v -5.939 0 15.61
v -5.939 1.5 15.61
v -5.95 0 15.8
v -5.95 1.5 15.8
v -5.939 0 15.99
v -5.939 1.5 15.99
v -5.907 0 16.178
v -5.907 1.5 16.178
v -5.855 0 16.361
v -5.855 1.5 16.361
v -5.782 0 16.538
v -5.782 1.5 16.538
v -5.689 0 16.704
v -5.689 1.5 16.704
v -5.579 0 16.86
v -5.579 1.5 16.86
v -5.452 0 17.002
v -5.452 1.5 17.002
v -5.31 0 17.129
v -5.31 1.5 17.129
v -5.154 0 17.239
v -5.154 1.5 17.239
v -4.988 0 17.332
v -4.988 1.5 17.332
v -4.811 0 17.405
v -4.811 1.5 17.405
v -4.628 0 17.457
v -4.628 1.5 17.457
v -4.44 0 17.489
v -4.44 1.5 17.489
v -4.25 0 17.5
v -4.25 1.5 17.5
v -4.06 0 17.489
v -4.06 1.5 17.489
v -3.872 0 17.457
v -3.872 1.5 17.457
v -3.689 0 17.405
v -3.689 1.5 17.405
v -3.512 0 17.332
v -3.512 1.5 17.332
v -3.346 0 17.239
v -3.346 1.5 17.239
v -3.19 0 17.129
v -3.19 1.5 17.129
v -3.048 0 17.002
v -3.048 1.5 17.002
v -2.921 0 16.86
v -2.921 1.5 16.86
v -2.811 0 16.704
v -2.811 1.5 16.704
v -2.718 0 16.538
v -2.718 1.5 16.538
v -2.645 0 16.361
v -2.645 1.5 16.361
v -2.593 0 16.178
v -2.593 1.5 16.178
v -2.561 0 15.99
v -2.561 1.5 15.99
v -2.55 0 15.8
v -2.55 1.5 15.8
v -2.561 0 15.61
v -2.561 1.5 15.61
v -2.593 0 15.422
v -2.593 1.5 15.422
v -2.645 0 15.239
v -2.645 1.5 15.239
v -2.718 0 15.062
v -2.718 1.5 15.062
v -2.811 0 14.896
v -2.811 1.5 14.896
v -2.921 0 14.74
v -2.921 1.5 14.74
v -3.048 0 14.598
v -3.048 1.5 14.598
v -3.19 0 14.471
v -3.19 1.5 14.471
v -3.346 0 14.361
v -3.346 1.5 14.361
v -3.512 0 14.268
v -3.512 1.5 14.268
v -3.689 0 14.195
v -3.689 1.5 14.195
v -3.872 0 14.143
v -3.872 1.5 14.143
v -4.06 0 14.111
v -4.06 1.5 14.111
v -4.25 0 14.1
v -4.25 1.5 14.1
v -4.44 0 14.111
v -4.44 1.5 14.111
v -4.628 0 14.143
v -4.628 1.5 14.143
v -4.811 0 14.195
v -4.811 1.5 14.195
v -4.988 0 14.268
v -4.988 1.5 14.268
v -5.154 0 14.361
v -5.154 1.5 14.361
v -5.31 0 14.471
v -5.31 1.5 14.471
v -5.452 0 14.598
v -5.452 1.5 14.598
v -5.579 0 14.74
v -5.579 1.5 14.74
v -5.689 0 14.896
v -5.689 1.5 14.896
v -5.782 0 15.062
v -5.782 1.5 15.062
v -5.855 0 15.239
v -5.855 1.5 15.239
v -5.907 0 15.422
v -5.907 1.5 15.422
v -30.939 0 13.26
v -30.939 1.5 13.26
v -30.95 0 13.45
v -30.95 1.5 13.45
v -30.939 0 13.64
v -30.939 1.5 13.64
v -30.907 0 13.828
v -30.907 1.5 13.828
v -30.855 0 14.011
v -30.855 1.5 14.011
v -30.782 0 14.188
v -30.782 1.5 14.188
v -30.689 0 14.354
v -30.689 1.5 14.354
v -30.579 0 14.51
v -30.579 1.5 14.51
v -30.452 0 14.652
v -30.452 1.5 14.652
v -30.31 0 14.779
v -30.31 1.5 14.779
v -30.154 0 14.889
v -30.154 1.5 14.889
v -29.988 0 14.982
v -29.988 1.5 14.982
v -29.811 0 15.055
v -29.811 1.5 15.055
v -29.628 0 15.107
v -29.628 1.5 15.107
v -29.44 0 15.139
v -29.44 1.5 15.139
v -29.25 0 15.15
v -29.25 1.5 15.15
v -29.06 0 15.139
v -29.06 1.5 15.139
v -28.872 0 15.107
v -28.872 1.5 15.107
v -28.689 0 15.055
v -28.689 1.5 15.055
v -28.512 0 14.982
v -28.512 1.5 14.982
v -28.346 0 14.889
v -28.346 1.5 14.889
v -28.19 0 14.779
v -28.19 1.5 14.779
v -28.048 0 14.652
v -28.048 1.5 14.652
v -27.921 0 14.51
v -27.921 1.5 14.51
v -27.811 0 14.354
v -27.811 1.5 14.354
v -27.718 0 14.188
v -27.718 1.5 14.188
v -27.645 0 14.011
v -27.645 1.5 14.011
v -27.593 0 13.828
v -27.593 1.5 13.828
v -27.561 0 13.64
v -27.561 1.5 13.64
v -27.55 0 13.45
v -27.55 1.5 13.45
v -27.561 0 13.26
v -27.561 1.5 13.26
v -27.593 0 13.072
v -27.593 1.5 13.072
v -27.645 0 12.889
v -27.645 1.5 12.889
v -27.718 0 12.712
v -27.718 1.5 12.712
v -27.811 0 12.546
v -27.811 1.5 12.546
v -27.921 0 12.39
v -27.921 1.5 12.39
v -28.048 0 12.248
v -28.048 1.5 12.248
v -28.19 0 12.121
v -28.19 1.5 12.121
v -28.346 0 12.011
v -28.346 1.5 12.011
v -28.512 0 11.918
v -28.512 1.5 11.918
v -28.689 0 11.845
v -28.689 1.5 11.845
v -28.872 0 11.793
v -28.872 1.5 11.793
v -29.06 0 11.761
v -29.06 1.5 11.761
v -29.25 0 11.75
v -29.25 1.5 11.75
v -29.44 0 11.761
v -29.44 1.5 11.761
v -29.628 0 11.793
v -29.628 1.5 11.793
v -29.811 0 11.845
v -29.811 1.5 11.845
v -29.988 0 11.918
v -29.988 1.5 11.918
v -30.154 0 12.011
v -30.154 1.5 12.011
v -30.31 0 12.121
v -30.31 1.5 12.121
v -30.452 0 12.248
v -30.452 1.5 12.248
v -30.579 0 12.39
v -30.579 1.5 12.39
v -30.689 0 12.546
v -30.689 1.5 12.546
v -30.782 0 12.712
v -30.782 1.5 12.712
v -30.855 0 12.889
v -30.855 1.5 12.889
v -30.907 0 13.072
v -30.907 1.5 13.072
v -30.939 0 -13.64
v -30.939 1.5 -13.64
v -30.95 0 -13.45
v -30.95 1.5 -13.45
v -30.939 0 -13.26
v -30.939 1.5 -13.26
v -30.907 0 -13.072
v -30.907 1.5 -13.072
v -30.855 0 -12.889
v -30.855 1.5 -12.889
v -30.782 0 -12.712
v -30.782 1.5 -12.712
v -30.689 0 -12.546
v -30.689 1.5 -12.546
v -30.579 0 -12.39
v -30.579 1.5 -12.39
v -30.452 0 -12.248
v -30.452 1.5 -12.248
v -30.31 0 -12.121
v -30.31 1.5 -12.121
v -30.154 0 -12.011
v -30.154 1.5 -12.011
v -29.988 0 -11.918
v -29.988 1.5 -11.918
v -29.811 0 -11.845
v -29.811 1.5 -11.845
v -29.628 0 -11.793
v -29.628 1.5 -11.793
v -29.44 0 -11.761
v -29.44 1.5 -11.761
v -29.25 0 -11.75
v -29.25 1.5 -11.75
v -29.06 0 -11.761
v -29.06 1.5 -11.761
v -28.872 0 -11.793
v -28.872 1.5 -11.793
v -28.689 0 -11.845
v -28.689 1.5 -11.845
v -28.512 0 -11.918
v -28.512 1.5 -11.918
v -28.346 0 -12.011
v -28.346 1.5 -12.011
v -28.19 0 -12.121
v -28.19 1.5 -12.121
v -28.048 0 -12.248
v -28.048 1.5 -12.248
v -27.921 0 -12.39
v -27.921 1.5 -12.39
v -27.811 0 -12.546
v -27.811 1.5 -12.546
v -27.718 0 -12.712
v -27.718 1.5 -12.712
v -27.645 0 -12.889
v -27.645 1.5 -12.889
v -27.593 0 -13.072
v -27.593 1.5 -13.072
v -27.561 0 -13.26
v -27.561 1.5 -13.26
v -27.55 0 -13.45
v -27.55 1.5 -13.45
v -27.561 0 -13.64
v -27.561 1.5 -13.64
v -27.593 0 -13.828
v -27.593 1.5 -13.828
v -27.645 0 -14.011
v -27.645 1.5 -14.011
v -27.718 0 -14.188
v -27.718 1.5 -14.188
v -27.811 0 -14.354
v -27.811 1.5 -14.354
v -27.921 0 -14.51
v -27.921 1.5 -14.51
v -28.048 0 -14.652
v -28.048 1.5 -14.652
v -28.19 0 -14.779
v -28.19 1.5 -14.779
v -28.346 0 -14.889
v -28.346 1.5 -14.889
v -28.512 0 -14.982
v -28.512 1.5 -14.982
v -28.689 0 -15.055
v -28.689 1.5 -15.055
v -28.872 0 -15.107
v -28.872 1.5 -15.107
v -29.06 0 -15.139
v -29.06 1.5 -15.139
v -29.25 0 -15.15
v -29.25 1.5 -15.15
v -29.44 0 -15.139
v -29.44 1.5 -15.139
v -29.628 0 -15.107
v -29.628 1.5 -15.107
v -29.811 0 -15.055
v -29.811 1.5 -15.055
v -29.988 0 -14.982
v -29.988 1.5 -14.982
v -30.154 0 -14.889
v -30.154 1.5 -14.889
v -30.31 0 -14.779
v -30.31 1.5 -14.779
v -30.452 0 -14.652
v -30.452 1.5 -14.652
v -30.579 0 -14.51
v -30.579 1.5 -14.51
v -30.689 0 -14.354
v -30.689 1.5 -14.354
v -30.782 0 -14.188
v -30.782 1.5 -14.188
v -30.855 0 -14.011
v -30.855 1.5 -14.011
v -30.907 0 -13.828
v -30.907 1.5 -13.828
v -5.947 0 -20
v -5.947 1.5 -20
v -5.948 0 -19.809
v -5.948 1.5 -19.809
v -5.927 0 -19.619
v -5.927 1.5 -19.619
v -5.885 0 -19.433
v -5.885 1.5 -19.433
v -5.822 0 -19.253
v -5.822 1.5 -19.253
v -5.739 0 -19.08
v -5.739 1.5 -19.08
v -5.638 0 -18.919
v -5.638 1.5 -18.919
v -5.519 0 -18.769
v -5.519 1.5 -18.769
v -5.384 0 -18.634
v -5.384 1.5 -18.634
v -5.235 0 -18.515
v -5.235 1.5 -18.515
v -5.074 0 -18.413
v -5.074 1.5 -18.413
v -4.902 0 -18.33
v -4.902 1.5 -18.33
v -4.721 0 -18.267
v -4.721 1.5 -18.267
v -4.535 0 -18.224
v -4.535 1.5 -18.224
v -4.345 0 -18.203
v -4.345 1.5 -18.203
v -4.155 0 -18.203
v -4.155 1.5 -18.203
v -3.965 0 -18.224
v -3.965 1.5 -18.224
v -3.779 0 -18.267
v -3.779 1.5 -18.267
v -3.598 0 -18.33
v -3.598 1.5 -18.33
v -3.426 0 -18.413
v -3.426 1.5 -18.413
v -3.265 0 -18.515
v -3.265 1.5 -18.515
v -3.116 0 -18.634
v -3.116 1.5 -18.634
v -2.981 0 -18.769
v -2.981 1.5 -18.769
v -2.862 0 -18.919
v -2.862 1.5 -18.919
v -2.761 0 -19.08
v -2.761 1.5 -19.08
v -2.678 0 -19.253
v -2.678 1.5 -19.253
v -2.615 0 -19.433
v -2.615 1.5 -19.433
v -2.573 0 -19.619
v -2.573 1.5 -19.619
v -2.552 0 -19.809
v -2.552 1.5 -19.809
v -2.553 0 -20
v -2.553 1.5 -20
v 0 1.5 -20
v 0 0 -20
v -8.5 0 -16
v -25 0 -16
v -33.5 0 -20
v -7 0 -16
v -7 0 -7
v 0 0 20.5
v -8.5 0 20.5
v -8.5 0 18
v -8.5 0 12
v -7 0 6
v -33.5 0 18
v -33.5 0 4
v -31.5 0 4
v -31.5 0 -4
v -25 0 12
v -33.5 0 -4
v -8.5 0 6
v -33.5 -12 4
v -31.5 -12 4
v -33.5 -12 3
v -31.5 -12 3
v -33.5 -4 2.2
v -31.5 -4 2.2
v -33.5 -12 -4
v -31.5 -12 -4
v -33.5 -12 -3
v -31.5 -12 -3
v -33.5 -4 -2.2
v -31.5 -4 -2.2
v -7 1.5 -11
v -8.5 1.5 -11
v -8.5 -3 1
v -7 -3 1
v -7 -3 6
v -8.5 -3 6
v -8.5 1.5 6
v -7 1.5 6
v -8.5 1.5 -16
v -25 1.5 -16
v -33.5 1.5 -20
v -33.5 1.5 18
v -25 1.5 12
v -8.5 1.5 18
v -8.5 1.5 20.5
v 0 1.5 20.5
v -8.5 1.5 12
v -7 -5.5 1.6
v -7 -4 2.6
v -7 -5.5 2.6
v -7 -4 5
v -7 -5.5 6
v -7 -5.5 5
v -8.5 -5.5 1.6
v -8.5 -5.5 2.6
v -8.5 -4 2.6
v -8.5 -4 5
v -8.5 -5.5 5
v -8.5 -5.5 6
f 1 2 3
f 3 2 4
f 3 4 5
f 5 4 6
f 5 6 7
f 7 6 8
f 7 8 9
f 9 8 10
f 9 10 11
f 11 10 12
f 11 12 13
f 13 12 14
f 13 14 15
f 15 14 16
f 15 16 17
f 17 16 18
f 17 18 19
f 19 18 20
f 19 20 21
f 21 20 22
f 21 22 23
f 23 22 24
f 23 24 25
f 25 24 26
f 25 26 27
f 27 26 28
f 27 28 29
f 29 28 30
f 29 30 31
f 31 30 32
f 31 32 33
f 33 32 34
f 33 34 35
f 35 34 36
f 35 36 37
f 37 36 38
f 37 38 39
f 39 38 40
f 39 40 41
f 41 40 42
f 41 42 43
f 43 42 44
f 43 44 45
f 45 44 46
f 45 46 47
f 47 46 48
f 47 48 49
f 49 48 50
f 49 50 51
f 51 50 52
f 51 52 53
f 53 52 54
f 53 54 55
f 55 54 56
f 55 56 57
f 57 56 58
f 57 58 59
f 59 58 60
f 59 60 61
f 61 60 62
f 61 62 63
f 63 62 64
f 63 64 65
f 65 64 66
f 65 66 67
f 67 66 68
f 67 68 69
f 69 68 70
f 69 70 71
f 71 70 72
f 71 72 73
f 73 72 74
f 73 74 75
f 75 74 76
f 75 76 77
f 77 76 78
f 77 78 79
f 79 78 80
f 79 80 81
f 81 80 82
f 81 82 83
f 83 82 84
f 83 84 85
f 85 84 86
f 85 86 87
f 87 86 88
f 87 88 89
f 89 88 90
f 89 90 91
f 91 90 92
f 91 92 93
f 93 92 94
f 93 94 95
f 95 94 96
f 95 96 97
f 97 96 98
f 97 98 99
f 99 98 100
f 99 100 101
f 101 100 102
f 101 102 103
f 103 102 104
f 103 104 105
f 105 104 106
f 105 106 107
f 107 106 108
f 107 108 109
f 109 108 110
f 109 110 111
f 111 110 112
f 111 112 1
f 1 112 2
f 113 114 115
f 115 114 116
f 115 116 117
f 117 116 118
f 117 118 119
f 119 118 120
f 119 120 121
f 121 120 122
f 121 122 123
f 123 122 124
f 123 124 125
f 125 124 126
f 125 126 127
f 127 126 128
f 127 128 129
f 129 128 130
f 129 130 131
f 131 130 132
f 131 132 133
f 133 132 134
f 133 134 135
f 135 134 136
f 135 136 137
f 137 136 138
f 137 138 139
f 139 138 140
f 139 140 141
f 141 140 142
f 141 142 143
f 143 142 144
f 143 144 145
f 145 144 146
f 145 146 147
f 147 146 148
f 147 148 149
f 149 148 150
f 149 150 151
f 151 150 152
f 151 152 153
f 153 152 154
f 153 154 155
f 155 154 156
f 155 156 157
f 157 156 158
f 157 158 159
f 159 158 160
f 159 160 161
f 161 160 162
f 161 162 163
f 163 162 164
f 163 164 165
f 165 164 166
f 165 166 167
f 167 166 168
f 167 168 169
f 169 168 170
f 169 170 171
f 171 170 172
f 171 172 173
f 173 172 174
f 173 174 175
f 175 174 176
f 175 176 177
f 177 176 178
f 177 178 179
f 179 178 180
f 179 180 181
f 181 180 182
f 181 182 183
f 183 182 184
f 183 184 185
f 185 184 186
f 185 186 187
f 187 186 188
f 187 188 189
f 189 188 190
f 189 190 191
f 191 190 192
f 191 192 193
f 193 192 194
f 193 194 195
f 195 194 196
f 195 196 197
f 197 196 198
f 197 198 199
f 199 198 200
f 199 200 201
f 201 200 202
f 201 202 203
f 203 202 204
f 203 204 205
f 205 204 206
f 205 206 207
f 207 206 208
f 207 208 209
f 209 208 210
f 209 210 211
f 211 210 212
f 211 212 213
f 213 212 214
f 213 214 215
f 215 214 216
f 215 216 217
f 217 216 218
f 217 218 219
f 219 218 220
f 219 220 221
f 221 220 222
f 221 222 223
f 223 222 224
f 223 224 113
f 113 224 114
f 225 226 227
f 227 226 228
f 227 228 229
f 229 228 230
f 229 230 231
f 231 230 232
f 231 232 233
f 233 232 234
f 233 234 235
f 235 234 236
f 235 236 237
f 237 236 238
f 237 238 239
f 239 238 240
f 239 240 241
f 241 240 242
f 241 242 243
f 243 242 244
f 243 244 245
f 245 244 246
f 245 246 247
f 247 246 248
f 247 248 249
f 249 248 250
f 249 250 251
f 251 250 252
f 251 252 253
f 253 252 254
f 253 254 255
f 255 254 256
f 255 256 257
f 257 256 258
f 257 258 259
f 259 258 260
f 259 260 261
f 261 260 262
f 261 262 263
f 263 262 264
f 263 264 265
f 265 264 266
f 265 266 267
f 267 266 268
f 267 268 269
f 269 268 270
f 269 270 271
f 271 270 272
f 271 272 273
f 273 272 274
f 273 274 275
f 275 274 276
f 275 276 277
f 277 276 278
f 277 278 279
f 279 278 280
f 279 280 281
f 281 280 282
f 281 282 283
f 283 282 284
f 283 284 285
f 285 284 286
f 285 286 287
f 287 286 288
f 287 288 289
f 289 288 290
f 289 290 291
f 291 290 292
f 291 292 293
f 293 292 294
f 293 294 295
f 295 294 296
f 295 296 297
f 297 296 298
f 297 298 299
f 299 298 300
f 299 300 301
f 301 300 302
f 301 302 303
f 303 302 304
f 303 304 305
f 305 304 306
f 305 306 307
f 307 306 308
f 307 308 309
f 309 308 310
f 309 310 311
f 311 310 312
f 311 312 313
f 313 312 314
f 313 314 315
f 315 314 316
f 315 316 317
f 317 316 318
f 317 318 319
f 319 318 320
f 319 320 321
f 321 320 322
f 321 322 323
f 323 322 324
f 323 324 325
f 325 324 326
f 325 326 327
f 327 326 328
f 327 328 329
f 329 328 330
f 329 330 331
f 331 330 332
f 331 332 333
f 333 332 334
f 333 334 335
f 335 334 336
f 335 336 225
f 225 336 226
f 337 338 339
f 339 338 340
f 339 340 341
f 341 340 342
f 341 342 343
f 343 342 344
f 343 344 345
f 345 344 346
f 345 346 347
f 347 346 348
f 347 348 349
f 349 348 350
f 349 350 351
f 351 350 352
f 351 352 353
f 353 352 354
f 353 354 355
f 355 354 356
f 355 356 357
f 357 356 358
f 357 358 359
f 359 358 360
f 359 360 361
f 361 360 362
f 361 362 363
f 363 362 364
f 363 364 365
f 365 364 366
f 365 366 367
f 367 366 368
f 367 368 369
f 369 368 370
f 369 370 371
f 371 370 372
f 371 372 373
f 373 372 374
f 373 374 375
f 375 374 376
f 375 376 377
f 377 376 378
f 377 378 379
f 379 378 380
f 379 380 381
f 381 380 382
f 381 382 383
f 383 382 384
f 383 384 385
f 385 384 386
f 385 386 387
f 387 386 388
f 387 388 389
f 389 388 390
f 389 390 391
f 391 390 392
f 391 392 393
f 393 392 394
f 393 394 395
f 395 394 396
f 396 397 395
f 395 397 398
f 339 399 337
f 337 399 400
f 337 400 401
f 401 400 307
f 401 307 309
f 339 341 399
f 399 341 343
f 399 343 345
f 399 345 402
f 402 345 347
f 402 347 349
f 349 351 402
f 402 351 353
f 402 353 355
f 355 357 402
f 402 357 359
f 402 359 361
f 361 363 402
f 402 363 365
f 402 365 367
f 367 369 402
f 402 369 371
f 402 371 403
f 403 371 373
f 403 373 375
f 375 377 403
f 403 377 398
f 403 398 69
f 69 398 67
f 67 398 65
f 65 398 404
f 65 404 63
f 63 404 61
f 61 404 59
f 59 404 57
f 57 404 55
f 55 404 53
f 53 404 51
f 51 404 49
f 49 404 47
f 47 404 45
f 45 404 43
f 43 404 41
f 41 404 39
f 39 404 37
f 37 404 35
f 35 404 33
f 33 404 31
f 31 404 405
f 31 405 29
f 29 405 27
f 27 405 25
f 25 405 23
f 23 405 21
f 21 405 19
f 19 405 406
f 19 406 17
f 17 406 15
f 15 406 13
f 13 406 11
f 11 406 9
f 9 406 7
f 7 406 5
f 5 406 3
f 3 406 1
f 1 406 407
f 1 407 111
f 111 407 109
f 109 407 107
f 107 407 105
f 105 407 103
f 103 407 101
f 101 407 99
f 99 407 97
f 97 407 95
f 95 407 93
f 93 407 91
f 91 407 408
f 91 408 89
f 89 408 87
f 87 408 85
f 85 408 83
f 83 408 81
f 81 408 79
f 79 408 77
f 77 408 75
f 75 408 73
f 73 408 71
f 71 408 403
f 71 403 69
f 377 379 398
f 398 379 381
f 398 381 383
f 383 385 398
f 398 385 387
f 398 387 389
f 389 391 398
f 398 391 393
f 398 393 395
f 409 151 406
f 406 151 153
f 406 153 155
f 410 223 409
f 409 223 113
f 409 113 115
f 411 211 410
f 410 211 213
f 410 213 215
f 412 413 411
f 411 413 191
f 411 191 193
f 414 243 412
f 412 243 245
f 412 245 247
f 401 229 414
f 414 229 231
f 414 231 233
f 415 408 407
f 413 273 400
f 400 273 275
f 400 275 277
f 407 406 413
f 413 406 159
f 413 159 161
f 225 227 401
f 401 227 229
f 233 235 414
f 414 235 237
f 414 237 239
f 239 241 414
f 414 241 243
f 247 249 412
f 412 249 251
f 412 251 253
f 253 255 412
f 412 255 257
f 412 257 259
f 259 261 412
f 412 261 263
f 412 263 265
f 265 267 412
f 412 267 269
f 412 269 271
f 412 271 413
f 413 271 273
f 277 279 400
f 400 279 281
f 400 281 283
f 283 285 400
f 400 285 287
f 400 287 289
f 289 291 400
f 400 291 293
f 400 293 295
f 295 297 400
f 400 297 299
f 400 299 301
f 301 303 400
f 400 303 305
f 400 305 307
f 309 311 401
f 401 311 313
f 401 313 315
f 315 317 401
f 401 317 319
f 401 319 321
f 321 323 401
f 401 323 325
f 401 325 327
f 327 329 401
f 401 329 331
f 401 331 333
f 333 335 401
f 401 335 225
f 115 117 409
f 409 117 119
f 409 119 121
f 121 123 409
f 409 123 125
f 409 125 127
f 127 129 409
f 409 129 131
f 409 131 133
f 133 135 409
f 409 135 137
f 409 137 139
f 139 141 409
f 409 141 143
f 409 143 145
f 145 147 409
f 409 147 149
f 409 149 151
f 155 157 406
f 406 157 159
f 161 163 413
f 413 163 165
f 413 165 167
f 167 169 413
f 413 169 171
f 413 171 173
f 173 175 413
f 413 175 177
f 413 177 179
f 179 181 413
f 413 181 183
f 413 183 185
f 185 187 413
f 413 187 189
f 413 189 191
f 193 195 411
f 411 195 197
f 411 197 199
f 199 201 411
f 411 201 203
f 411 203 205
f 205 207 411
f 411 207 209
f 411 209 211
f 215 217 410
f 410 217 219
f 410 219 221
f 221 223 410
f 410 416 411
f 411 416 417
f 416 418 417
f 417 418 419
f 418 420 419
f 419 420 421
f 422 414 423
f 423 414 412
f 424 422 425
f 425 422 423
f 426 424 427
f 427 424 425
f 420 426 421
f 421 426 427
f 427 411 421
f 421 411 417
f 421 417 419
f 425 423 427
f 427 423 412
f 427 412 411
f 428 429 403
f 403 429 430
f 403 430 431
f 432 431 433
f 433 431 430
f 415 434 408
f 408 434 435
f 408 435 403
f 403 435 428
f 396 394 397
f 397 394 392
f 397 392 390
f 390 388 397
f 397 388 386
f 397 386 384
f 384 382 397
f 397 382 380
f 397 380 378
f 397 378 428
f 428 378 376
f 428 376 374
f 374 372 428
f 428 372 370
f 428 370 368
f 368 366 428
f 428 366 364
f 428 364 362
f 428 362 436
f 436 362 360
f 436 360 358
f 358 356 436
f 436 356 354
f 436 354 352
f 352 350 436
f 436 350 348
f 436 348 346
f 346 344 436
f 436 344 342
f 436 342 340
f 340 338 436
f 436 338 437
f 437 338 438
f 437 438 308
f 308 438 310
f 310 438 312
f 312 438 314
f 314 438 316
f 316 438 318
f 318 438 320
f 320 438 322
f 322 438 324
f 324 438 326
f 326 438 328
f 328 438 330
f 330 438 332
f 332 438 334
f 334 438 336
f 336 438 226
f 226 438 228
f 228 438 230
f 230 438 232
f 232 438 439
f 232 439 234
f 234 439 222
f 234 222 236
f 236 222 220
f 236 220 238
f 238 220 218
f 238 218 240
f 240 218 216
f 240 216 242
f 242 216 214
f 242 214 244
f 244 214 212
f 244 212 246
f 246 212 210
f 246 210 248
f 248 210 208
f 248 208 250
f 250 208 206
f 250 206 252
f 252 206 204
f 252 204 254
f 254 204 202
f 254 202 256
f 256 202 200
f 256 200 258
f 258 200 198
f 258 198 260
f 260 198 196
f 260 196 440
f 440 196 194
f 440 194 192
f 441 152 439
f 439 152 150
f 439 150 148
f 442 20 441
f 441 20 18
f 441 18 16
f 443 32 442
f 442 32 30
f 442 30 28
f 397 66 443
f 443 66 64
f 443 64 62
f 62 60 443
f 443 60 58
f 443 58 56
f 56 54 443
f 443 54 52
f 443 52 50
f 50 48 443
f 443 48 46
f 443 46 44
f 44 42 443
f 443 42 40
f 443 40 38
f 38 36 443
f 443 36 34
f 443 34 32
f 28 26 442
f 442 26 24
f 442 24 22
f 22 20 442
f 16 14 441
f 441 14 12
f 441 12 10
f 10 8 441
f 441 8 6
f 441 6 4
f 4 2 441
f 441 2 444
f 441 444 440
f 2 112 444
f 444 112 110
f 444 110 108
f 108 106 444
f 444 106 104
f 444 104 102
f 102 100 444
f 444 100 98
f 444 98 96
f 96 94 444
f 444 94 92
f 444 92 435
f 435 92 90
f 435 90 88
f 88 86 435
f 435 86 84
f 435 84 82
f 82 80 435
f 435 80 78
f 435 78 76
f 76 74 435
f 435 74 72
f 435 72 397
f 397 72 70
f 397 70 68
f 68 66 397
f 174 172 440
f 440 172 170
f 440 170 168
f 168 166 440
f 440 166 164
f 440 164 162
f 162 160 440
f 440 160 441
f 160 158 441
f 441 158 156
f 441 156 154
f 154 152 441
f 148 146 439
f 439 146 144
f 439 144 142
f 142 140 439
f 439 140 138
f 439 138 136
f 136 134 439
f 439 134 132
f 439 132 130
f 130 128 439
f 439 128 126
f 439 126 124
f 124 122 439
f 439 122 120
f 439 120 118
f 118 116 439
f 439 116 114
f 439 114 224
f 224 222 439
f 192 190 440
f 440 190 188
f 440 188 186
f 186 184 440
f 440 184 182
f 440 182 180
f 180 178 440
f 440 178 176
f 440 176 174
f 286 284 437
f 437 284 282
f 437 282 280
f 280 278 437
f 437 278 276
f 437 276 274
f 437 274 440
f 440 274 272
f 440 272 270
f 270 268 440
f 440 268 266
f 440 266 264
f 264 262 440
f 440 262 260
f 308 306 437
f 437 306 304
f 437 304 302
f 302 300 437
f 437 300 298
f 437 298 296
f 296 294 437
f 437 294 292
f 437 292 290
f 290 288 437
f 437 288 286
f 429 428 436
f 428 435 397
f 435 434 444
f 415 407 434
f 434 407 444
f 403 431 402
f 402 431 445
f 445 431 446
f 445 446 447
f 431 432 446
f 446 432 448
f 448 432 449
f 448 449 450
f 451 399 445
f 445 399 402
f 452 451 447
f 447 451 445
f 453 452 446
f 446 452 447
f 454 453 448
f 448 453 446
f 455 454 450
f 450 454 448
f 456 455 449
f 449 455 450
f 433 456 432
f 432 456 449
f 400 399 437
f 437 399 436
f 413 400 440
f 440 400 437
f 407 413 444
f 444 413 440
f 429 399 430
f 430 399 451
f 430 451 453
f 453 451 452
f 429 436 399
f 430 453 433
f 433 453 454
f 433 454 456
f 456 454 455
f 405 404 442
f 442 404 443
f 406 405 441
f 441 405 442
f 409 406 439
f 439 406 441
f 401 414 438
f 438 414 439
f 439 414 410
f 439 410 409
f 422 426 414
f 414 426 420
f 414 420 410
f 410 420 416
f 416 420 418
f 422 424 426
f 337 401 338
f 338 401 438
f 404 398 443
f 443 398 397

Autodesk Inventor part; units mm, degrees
ref_plane "YZ Plane" through (0, 0, 0) normal (1, 0, 0) x (0, 1, 0)
ref_plane "XZ Plane" through (0, 0, 0) normal (0, 1, 0) x (-1, 0, 0)
sketch "Skizze1" plane through (0, 0, 0) normal (0, 1, 0) x (-1, 0, 0)
  line L0 (0, -20) -> (33.5, -20)
  line L1 (33.5, -20) -> (33.5, 18)
  line L2 (33.5, 18) -> (0, 18)
  line L3 (0, 18) -> (0, -20)
  line L4 (-6.7, 0) -> (40.2, 0) projected
  line L5 (0, 18) -> (0, 20.5)
  line L6 (0, 20.5) -> (8.5, 20.5)
  line L7 (8.5, 20.5) -> (8.5, 18)
  line L8 (25, 12) -> (8.5, 12)
  line L9 (8.5, 12) -> (8.5, -16)
  line L10 (8.5, -16) -> (25, -16)
  line L11 (25, -16) -> (25, 12)
  point P0 (0, 0)
  dimension "d1" = 33.5
  dimension "d4" = 18
  dimension "d5" = 20
  dimension "d6" = 2.5
  dimension "d7" = 8.5
  dimension "d8" = 6
  dimension "d9" = 4
  dimension "d10" = 8.5
  dimension "d11" = 8.5
extrude "Extrusion1" add sketch "Skizze1" along normal blind 1.5 contours L3 L4 L9 L10 L11 L1 L0 | L3 L2 L1 L4 L11 L8 L9 | L5 L6 L7 L2
sketch "Skizze2" plane through (-8.5, 0, -16) normal (-1, 0, 0) x (0, 0, 1)
  line L0 (28, 0) -> (0, 0) projected
  line L1 (17.6, 0) -> (17.6, -5.5)
  line L2 (17.6, -5.5) -> (18.6, -5.5)
  line L3 (18.6, -5.5) -> (18.6, 0)
  line L4 (21, 0) -> (21, -5.5)
  line L5 (21, -5.5) -> (22, -5.5)
  line L6 (22, -5.5) -> (22, 0)
  line L7 (16, 2.6) -> (16, -5.1) projected
  line L8 (21, -4) -> (18.6, -4)
  line L9 (17.6, -5.5) -> (0, 0)
  point P0 (16, 0)
  point P1 (16, -5)
  dimension "d12" = 2.6
  dimension "d13" = 5
  dimension "d14" = 1
  dimension "d15" = 1
  dimension "d16" = 5.5
  dimension "d19" = 4
extrude "Extrusion2" add sketch "Skizze2" against normal blind 1.5
sketch "Skizze3" plane through (-8.5, 0, 12) normal (-1, 0, 0) x (0, 0, 1)
  line L0 (-32, 1.5) -> (6, 1.5) projected
  line L1 (-6, -5.5) -> (-6, 0) projected
  line L2 (-6, 0) -> (-28, 0) projected
  line L3 (-6, 0) -> (-6, 1.5)
  line L4 (-6, 0) -> (-6, -5.5) projected
  line L5 (-6, -3) -> (-11, -3)
  line L6 (-11, -3) -> (-23, 1.5)
  line L7 (8.5, 1.5) -> (-32, 1.5) projected
  line L8 (-9.4, -4) -> (-7, -4) projected
  line L9 (-28, 0) -> (-28, 1.5) projected
  point P0 (-12, 0)
  dimension "d20" = 1
  dimension "d21" = 5
  dimension "d23" = 5
extrude "Extrusion3" cut sketch "Skizze3" against normal up to surface (1.5 mm away) contours L0 L3 L2 L6 | L2 L1 L5 L6
sketch "Skizze4" plane through (-33.5, 0, -20) normal (-1, 0, 0) x (0, 0, 1)
  line L0 (32, 0) -> (4, 0) projected
  line L1 (16, 0) -> (16, -12)
  line L2 (16, -12) -> (17, -12)
  line L3 (17, -12) -> (17.8, -4)
  line L4 (17.8, -4) -> (20, -4)
  line L5 (20, -4) -> (20, 0)
  line L6 (20, 5.3565) -> (20, -21.6388) projected
  dimension "d26" = 3
  dimension "d27" = 2.2
  dimension "d28" = 4
  dimension "d29" = 8
  dimension "d30" = 12
extrude "Extrusion4" add sketch "Skizze4" against normal blind 2
mirror "Spiegeln1" about plane through (0, 0, 0) normal (0, 0, 1) of "Extrusion4"
sketch "Skizze5" plane through (0, 1.5, 0) normal (0, 1, 0) x (1, 0, 0)
  line L0 (6.7, 0) -> (-40.2, 0) projected
  line L1 (0, -20.5) -> (0, 20) projected
  point P0 (0, 0)
  point P1 (-29.25, -13.45)
  point P2 (-29.25, 13.45)
  point P3 (-4.25, -15.8)
  point P4 (-4.25, 19.9)
  dimension "d33" = 13.45
  dimension "d34" = 13.45
  dimension "d35" = 15.8
  dimension "d36" = 19.9
  dimension "d37" = 4.25
  dimension "d38" = 29.25
hole "Bohrung1" at (-29.25, 1.5, 13.45) at (-29.25, 1.5, -13.45) at (-4.25, 1.5, 15.8) at (-4.25, 1.5, -19.9) direction (0, -1, 0) diameter 3.4 depth 23.75 tip angle 118
properties part number "servo_und_kabelhalter"
